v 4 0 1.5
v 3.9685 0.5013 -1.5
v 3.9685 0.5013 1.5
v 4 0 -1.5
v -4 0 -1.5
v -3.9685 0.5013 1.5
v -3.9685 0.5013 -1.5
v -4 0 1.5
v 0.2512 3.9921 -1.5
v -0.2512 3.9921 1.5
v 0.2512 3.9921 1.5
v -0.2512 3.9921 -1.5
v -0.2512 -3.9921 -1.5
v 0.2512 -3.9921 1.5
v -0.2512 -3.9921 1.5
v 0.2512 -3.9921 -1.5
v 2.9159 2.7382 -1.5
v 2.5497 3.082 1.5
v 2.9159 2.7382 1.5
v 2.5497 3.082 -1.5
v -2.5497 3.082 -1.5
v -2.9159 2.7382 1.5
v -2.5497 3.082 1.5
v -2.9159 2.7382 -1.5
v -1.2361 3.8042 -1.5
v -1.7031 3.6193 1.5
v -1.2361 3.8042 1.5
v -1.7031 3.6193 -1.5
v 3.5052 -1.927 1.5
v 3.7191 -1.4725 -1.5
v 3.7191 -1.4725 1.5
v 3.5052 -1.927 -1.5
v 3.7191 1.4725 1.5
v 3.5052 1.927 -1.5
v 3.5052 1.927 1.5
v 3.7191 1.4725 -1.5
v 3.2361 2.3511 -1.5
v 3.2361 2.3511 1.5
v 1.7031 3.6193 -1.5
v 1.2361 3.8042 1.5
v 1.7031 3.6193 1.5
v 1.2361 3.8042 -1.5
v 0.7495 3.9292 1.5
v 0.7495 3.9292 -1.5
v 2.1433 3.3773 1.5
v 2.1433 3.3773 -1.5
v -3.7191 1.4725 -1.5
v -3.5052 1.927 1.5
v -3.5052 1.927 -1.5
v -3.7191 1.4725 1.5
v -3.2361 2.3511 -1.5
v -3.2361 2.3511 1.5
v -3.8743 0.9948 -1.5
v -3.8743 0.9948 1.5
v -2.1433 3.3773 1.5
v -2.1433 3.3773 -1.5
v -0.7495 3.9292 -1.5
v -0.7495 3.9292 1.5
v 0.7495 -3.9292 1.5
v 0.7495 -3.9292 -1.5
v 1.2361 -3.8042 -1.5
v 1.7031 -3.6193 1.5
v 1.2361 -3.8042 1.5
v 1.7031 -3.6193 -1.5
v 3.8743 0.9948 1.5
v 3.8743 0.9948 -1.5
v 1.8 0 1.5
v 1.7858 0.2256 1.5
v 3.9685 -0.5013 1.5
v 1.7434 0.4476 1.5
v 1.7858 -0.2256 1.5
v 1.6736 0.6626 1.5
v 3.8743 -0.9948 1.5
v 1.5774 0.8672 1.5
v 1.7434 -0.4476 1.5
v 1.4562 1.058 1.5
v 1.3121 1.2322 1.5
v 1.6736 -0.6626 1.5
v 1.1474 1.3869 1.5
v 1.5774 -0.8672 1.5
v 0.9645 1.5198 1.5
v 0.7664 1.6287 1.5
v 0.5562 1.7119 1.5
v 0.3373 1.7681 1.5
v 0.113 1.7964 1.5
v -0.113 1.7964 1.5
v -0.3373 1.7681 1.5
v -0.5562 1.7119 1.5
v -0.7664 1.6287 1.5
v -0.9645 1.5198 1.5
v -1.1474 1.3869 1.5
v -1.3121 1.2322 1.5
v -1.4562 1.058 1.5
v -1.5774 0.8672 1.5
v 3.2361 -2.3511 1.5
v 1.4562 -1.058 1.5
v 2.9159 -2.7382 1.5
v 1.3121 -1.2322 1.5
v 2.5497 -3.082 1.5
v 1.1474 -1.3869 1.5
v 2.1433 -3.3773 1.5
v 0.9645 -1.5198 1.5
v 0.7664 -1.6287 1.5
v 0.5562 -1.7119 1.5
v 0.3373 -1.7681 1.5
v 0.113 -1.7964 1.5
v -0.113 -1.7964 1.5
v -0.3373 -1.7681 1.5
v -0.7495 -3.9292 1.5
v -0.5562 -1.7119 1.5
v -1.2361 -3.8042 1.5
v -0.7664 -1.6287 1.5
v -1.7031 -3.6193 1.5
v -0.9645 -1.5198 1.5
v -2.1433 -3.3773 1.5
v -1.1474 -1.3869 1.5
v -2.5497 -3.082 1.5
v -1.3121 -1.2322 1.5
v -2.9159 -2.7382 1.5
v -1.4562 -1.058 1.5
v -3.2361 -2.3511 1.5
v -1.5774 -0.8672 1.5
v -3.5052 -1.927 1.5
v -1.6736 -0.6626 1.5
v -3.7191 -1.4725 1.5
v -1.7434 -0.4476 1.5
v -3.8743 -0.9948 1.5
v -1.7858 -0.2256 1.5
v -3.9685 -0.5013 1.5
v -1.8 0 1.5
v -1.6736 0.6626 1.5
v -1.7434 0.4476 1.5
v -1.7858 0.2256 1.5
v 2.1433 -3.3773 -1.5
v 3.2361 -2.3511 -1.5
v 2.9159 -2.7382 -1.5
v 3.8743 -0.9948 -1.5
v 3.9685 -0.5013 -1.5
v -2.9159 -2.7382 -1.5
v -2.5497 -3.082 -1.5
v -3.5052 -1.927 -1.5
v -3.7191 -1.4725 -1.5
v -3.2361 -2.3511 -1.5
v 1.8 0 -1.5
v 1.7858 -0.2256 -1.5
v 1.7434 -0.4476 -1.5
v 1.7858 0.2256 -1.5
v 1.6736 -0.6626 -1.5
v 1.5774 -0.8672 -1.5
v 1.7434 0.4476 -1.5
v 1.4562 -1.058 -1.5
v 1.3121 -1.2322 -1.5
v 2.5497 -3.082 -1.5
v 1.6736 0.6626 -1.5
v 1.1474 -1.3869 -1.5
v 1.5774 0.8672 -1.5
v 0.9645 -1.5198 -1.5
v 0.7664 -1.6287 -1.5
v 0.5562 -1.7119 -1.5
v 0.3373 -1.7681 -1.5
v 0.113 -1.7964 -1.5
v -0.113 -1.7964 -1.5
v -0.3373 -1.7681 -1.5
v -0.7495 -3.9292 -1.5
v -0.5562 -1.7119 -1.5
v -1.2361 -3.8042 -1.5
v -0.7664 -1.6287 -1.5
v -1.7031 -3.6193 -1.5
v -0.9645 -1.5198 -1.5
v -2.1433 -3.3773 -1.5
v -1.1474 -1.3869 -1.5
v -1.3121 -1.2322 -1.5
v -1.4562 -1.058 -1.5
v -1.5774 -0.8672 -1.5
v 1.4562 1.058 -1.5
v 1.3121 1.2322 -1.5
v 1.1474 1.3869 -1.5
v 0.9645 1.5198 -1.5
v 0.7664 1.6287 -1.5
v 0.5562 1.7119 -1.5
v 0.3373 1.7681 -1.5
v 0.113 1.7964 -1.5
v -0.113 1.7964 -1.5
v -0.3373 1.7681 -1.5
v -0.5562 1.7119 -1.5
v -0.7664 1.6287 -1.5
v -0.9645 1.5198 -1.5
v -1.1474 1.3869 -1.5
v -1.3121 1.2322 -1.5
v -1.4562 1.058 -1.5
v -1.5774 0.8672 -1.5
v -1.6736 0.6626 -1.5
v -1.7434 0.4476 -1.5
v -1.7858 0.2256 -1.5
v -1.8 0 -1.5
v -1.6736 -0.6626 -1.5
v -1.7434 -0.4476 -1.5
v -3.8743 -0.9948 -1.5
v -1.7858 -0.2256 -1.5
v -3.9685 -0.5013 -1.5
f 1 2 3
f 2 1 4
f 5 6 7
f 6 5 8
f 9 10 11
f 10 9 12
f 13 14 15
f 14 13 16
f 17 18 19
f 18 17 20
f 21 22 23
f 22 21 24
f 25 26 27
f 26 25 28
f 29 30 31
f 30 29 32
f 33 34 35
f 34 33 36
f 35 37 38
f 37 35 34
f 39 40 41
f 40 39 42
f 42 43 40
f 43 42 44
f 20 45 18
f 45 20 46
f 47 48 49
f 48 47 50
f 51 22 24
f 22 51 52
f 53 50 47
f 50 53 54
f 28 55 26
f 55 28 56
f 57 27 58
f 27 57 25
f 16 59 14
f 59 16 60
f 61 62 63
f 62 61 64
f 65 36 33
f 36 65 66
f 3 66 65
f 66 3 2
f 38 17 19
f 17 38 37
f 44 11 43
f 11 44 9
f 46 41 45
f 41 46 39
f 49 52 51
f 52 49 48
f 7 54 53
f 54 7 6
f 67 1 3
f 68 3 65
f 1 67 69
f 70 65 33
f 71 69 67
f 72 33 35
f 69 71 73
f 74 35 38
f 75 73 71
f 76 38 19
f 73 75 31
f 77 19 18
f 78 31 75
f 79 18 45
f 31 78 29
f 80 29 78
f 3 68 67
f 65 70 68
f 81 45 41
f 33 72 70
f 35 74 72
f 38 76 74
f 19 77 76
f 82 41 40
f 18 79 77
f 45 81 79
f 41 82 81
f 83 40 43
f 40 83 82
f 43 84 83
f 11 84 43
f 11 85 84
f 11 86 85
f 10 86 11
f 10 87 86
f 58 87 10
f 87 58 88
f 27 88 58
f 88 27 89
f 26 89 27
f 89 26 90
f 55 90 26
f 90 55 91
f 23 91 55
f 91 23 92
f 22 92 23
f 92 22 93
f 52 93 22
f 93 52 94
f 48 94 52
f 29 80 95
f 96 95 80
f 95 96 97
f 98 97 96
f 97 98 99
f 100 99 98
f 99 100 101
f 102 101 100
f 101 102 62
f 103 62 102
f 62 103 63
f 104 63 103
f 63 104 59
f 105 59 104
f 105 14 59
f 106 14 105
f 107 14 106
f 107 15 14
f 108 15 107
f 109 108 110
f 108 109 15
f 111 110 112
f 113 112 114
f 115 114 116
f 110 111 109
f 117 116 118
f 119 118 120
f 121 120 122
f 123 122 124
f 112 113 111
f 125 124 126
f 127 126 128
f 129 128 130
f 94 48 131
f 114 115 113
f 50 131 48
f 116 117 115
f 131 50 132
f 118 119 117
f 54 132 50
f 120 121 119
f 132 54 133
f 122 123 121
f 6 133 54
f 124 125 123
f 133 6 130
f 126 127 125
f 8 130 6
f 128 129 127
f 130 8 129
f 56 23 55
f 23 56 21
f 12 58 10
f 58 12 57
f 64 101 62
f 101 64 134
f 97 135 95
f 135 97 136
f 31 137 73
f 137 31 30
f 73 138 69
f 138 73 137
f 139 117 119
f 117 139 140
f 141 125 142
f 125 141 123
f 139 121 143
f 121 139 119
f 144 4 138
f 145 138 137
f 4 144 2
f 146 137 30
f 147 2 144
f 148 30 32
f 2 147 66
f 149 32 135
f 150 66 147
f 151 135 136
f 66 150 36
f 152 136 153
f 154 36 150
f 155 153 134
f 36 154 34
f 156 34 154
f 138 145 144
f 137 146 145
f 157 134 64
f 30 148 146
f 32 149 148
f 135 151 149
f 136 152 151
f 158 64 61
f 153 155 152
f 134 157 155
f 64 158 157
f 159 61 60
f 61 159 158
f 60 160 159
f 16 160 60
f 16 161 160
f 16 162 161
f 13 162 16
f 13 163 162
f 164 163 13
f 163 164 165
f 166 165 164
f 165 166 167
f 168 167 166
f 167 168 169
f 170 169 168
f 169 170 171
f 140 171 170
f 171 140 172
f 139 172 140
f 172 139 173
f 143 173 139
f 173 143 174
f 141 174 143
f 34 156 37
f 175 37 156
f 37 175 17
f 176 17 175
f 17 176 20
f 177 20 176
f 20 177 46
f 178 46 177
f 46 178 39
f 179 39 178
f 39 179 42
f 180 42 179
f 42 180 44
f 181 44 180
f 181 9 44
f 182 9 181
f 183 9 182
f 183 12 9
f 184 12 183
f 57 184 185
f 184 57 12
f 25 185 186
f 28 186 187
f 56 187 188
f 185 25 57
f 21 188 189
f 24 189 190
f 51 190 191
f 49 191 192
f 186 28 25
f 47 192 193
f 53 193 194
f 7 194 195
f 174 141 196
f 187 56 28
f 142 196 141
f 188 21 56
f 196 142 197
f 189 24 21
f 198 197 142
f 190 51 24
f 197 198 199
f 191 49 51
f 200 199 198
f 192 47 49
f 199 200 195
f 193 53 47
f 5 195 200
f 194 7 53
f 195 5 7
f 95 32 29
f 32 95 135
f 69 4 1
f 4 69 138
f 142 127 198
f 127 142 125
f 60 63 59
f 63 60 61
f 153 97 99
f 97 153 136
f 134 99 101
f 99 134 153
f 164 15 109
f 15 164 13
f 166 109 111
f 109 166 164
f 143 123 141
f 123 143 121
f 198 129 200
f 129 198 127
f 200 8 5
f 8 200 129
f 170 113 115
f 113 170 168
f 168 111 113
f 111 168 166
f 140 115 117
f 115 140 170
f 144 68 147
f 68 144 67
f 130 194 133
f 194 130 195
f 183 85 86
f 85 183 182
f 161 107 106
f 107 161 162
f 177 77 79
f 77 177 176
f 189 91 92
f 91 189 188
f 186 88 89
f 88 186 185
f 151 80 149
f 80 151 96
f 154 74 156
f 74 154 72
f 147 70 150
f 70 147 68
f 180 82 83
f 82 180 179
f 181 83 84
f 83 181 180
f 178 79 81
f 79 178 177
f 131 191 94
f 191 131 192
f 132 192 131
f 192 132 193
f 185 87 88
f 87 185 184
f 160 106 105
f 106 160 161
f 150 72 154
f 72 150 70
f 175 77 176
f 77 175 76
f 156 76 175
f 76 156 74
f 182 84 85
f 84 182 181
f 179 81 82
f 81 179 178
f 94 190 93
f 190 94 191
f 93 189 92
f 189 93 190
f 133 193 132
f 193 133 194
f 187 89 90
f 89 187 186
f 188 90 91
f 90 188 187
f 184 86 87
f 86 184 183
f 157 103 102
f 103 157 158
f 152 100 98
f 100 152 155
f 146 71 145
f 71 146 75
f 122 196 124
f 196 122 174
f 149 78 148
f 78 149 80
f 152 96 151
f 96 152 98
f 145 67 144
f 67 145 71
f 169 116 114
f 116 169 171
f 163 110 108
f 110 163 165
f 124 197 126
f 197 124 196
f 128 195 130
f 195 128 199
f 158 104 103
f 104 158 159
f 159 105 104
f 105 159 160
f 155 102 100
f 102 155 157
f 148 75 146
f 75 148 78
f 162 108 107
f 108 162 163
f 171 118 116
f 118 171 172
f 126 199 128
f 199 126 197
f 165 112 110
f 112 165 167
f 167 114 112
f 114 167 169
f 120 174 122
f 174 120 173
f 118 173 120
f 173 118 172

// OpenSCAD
$fn = 50;


difference() {
	union() {
		translate(v = [0, 0, -1.5000000000]) {
			cylinder(h = 3, r = 4.0000000000);
		}
	}
	union() {
		translate(v = [0, 0, -100.0000000000]) {
			cylinder(h = 200, r = 1.8000000000);
		}
	}
}
